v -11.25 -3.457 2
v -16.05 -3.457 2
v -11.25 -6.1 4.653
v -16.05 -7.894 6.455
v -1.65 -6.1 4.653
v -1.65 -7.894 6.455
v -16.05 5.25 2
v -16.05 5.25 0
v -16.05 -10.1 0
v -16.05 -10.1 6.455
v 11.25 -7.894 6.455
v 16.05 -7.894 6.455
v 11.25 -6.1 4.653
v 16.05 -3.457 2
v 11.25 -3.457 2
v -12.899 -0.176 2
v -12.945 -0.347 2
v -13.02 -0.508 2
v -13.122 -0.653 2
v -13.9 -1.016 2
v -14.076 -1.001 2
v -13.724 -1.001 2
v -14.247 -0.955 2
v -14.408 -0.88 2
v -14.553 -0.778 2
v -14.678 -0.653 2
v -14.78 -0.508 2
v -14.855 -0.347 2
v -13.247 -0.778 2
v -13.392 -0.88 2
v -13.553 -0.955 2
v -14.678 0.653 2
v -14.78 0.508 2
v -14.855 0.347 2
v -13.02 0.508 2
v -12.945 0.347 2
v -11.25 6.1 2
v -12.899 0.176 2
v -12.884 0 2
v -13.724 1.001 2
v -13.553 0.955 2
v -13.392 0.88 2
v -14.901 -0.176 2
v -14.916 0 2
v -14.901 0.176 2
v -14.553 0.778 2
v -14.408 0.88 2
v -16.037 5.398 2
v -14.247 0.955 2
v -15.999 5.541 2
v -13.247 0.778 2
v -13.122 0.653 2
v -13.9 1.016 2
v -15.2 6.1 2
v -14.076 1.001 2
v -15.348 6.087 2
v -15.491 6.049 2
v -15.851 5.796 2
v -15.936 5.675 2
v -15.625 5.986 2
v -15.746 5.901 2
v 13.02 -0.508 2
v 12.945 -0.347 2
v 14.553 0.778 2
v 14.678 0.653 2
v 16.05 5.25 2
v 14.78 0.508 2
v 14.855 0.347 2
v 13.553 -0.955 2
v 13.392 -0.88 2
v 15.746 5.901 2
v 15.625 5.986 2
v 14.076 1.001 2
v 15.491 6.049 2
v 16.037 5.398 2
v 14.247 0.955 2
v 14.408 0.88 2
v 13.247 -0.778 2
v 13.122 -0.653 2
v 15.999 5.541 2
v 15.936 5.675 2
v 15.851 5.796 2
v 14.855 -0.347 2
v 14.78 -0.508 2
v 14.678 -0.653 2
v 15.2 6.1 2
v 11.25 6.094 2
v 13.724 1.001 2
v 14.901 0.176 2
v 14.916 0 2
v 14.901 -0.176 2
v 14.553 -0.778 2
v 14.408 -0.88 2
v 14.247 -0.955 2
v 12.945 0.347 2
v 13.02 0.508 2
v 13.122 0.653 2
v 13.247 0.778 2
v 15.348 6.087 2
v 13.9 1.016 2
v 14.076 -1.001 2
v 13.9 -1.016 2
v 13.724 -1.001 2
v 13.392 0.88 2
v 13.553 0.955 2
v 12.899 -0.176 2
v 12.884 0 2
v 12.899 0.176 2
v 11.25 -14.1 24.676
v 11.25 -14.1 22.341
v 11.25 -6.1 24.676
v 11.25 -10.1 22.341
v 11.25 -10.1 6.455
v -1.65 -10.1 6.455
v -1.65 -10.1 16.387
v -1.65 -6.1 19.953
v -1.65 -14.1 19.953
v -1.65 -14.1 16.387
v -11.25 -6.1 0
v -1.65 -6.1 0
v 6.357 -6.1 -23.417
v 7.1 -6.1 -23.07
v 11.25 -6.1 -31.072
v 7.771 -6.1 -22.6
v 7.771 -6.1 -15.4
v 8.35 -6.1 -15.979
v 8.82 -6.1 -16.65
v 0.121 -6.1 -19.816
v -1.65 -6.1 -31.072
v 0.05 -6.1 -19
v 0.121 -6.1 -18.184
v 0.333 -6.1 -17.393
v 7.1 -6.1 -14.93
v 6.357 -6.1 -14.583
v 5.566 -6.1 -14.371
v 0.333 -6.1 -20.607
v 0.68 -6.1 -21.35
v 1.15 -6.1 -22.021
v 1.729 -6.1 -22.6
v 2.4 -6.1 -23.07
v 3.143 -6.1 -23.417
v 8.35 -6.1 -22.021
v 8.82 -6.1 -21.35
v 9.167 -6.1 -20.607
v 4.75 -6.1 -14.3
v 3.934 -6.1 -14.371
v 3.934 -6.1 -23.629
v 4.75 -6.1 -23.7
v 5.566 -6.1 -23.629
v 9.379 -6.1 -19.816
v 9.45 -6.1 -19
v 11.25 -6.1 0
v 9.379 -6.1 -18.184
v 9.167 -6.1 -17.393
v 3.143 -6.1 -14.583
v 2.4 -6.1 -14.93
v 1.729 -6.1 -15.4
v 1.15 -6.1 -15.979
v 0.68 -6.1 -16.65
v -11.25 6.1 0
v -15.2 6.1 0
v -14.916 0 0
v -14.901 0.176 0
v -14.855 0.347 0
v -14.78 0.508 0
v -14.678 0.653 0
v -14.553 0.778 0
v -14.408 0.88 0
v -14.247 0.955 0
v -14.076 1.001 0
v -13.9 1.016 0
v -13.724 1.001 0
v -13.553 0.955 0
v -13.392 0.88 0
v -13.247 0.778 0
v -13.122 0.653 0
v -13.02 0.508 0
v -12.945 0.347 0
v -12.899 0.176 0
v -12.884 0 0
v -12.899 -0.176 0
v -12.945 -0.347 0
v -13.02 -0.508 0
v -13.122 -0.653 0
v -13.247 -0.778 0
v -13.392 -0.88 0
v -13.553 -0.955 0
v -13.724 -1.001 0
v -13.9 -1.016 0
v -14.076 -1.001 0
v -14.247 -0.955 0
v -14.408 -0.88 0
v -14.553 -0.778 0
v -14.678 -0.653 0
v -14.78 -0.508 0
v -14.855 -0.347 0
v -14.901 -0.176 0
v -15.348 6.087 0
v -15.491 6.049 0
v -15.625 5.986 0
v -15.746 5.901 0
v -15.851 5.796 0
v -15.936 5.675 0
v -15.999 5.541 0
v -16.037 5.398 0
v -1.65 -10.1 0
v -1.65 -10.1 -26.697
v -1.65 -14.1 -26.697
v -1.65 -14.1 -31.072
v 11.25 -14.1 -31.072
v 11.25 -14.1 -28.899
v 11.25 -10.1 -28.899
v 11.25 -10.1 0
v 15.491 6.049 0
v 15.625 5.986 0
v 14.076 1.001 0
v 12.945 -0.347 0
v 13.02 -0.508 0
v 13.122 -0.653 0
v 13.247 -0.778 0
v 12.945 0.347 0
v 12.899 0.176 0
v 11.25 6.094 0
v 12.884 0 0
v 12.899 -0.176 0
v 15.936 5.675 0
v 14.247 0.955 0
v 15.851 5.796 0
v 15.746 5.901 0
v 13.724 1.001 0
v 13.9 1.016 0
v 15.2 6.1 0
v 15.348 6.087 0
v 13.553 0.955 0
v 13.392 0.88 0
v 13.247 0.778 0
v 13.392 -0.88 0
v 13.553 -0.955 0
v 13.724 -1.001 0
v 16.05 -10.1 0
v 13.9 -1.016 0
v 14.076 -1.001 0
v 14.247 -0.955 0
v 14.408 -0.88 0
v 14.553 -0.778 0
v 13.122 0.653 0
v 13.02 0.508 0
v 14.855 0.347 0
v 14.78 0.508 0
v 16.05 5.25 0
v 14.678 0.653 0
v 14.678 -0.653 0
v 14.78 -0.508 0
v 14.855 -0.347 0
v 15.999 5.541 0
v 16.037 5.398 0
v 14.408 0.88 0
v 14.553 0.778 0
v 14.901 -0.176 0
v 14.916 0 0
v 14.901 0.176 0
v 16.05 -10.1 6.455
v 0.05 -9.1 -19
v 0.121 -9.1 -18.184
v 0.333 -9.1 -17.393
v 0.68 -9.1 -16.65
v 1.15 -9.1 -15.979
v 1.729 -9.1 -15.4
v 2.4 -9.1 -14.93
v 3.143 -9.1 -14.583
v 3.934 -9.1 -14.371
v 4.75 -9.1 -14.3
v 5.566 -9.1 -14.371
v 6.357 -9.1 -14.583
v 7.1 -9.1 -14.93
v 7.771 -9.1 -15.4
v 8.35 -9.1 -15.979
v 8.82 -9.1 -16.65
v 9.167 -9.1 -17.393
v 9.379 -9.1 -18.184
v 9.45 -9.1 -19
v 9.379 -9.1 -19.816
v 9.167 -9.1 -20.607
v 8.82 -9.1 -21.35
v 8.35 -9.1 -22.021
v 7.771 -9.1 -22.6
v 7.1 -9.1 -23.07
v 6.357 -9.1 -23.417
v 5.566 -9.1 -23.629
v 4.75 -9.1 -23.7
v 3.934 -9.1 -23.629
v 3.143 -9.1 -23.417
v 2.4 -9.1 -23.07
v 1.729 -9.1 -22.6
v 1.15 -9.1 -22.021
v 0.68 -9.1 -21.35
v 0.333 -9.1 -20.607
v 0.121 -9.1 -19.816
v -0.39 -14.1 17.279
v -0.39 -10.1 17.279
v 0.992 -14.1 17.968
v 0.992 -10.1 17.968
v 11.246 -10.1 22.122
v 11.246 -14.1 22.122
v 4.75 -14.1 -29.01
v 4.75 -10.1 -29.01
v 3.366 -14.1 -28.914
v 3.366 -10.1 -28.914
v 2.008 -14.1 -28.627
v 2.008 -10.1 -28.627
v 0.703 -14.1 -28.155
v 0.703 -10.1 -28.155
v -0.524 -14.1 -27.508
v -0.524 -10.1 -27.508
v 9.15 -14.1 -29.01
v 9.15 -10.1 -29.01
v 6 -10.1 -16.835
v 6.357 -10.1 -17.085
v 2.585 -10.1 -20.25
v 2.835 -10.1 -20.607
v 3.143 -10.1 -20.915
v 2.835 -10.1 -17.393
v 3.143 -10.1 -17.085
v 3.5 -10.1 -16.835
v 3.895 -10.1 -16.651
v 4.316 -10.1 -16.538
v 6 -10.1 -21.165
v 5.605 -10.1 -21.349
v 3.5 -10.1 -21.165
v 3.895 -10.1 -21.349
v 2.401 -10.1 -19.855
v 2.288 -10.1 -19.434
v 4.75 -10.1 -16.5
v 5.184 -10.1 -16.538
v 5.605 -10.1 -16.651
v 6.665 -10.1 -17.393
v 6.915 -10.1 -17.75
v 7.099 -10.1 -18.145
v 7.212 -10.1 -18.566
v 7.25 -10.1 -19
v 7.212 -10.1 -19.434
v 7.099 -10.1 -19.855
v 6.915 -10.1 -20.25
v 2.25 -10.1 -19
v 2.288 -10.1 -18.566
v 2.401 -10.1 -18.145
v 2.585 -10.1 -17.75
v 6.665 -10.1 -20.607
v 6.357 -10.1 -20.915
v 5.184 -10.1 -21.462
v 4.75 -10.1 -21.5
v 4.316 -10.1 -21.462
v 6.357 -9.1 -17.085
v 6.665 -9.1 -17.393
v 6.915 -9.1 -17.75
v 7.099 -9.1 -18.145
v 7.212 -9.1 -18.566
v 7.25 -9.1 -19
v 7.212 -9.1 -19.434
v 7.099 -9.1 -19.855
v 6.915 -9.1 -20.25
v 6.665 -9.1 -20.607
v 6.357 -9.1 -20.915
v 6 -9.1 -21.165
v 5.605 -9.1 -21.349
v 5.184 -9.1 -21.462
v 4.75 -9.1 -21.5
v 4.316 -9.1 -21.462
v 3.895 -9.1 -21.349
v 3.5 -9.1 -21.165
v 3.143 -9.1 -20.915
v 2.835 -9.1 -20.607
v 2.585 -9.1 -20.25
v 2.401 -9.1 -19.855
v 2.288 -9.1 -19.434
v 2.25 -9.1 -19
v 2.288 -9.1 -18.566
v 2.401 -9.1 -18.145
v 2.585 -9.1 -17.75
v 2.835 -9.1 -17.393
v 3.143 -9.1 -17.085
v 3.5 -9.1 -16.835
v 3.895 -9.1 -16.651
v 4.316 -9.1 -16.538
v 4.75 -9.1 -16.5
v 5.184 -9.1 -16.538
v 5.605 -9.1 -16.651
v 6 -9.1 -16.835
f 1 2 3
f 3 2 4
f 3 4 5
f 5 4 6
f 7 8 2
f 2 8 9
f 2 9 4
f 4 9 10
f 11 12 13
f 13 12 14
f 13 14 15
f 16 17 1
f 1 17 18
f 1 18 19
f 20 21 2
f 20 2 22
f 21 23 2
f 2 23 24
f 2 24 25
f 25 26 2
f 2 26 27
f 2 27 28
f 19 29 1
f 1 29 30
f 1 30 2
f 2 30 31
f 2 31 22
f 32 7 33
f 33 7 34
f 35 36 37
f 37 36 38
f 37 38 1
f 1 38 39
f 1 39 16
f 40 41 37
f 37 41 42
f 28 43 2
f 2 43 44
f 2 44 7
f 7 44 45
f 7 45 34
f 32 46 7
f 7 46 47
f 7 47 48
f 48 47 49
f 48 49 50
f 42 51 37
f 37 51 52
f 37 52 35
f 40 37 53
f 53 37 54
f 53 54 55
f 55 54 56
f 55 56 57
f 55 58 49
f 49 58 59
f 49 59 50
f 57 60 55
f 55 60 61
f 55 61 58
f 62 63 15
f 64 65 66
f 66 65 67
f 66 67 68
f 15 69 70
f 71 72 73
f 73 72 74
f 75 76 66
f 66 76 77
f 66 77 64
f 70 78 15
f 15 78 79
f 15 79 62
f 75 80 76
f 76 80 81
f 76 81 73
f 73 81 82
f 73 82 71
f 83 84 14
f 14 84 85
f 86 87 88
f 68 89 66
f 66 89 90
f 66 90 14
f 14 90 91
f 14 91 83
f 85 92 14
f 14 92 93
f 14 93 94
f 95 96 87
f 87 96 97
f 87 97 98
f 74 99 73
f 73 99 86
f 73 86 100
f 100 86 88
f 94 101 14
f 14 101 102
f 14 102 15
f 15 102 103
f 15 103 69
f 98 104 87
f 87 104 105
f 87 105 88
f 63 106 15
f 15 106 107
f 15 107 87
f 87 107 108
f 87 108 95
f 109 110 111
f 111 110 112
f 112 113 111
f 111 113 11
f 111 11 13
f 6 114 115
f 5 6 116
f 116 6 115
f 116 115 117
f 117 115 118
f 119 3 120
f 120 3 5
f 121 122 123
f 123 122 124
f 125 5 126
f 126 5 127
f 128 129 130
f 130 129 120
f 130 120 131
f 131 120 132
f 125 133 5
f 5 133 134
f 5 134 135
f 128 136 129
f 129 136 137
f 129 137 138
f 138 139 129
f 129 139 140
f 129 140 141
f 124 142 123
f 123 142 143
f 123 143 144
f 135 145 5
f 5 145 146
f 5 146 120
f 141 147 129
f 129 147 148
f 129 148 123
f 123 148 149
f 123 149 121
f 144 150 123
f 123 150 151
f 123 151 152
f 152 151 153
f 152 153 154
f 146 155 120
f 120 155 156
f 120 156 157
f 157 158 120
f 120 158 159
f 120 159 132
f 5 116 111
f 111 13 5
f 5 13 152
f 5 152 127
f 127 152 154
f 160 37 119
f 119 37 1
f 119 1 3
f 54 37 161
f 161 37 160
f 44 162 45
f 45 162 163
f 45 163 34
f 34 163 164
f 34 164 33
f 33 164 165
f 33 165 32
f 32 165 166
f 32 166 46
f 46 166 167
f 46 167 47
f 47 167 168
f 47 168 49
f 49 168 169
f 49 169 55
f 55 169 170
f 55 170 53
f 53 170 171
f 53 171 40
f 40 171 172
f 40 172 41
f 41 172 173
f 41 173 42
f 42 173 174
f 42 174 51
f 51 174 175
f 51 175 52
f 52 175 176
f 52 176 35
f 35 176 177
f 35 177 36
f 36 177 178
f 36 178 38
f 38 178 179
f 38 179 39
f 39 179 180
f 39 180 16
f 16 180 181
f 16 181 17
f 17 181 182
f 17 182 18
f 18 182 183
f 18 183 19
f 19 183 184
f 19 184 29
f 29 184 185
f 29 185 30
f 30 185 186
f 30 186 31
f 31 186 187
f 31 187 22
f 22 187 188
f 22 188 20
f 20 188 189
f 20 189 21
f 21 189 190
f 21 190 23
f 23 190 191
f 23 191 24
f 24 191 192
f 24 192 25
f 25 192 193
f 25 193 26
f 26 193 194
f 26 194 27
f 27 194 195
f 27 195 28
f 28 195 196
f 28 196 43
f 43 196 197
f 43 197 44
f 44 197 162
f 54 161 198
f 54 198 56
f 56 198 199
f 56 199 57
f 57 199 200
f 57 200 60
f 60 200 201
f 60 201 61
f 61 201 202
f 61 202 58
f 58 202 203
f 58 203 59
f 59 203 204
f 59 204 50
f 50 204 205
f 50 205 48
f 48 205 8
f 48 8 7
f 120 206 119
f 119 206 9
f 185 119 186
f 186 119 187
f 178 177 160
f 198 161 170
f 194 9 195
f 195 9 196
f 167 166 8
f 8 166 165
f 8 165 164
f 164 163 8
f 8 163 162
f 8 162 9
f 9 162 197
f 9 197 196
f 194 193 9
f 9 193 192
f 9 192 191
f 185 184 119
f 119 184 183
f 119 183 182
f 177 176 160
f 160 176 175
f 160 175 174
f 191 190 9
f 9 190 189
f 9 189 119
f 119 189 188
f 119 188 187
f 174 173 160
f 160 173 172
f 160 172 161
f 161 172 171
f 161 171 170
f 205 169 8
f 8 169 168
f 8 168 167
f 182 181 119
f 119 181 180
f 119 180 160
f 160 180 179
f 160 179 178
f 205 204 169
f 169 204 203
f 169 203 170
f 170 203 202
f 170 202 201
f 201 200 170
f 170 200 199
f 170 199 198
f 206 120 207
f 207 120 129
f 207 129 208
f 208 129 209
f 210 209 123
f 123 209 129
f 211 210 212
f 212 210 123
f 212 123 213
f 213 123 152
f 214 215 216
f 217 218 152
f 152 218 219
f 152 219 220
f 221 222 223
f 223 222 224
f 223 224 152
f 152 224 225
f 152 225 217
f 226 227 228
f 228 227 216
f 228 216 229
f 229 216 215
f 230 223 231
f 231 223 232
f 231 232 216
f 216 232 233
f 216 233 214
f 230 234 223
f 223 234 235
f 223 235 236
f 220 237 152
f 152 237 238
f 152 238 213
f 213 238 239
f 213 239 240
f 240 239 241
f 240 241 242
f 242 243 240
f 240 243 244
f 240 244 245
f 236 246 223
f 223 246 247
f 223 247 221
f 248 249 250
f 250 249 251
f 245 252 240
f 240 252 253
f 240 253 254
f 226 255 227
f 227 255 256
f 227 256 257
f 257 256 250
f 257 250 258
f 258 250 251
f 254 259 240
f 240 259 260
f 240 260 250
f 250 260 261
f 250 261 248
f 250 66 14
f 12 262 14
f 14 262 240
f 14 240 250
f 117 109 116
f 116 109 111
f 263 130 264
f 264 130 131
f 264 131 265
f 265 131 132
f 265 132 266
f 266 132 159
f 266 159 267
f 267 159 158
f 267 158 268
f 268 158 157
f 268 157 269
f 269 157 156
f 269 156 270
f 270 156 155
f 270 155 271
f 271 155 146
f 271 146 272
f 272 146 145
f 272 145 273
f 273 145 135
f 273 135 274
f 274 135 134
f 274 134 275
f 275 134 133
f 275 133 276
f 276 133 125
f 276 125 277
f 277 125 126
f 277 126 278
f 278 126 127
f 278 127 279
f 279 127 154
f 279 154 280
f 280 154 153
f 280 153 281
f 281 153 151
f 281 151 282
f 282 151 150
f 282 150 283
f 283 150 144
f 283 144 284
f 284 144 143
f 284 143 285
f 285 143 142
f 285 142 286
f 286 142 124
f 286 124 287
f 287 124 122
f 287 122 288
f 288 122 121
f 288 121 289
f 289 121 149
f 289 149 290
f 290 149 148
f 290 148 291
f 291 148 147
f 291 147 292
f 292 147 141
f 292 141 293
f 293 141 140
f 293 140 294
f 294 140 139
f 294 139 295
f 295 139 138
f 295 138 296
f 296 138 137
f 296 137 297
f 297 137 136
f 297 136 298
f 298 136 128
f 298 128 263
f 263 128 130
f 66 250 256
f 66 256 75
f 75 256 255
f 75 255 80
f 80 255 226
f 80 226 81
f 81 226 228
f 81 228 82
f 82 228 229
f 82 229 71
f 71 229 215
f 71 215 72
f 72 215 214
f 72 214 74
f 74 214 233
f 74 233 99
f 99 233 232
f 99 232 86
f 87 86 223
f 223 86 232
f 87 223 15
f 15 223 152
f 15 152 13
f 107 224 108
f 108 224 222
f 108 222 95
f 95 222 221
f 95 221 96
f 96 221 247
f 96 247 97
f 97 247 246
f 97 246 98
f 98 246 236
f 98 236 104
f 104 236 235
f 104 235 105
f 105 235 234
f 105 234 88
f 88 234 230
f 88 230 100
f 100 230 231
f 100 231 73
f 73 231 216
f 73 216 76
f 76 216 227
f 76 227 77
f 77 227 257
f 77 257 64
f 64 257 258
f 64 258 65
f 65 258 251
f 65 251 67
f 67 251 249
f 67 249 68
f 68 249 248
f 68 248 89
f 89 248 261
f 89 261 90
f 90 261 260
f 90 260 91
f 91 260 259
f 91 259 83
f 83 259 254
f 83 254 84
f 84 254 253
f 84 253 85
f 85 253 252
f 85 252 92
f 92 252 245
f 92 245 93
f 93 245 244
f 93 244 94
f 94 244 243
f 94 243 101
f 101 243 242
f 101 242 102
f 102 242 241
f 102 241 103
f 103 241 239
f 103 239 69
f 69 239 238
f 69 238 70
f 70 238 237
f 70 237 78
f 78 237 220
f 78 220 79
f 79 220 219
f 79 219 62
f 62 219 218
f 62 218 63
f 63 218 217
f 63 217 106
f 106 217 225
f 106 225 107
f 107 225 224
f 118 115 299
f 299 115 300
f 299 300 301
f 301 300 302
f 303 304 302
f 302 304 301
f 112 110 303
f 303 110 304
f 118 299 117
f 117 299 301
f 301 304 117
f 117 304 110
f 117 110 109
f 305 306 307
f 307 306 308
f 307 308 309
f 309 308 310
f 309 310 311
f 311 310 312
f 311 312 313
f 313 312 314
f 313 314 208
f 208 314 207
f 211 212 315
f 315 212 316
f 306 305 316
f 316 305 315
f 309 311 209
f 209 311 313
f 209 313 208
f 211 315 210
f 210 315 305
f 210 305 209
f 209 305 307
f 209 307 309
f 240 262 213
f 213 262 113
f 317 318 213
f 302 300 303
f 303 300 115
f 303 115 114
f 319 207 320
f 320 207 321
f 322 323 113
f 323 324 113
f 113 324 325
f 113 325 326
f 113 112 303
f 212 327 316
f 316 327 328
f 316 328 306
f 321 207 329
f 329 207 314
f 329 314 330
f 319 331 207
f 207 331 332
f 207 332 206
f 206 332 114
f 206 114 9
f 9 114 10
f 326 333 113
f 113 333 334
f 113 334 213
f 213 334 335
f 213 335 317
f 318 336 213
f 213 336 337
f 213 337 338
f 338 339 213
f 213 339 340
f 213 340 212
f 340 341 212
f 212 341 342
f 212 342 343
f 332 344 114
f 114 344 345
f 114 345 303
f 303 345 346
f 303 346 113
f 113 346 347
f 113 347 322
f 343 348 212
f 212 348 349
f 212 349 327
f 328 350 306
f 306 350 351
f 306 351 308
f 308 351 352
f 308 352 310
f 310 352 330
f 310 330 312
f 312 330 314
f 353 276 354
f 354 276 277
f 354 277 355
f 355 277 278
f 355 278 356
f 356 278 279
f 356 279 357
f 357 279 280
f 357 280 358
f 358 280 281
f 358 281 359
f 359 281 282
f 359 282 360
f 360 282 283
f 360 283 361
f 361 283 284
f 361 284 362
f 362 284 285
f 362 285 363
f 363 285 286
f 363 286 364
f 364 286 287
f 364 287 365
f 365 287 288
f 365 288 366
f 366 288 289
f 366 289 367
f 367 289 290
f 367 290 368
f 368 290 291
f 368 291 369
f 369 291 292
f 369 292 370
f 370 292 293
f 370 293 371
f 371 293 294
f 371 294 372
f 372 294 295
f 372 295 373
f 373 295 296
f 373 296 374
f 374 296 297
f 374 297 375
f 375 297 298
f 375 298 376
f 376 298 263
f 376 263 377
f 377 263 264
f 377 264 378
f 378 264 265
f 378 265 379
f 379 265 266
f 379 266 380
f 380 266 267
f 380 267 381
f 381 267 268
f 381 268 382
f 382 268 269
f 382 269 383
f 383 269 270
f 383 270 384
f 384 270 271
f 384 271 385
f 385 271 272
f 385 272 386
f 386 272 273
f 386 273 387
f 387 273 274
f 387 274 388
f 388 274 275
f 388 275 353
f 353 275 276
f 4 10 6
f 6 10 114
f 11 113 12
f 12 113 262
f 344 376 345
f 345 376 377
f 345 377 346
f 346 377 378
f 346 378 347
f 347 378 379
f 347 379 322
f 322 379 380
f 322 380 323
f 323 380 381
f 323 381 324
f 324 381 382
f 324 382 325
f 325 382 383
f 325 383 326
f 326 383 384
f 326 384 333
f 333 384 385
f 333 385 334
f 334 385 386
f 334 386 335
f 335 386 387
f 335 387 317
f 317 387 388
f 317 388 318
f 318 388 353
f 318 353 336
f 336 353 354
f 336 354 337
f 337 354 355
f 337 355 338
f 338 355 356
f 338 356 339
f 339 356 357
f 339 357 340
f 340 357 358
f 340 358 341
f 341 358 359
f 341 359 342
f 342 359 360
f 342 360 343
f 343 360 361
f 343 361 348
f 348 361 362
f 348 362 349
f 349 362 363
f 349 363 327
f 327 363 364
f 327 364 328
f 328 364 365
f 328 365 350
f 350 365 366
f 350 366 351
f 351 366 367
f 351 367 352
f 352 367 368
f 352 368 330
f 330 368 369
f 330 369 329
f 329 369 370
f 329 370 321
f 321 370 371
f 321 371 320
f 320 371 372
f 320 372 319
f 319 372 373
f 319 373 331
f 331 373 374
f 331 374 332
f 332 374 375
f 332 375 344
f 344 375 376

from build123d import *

# Parameters (mm, degrees)
SKETCH1_R                       = 1.016
BOSS_EXTRUDE1_DEPTH             = 2
BOSS_EXTRUDE2_OUTLINE_R         = 4.7
BOSS_EXTRUDE2_DEPTH             = 3
BOSS_EXTRUDE5_DEPTH             = 8
BOSS_EXTRUDE6_REACH             = 45.699
BOSS_EXTRUDE6_DIRECTION_2_REACH = 45.699
SKETCH4_W                       = 22.5
SKETCH4_H                       = 14.127681706
CUT_EXTRUDE1_DEPTH              = 7
FILLET1_R                       = 0.5
SKETCH5_R                       = 2.5
BOSS_EXTRUDE7_DEPTH             = 1
SKETCH6_W                       = 5.313656685
SKETCH6_H                       = 4.599259183
SKETCH6_W_2                     = 16.163165117
SKETCH6_H_2                     = 5.344557169
CUT_EXTRUDE2_DEPTH              = 5


# Read off the part's stored shape, not the designer's step: Boss-Extrude2
with BuildPart() as part:
    # Sketch1 → Boss-Extrude1 (new body)
    # profile 1 of 4: a face of its own
    with BuildSketch(Plane.XY):
        with BuildLine():
            Line((-16.05, 5.25), (-16.05, -5.25))
            ThreePointArc((-16.05, -5.25), (-15.801040764, -5.851040764), (-15.2, -6.1))
            Line((-15.2, -6.1), (-11.25, -6.1))
            Line((-11.25, -6.1), (-11.25, 6.1))
            Line((-11.25, 6.1), (-15.2, 6.1))
            ThreePointArc((-15.2, 6.1), (-15.801040764, 5.851040764), (-16.05, 5.25))
        make_face()
        with Locations((-13.9, 0)):
            Circle(SKETCH1_R, mode=Mode.SUBTRACT)
    # profile 2 of 4: a face of its own
    with BuildSketch(Plane.XY):
        with BuildLine():
            Line((16.05, 5.25), (16.05, -5.25))
            ThreePointArc((16.05, -5.25), (15.801040764, -5.851040764), (15.2, -6.1))
            Line((15.2, -6.1), (11.25, -6.1))
            Line((11.25, -6.1), (11.25, 6.094097151))
            Line((11.25, 6.094097151), (15.2, 6.1))
            ThreePointArc((15.2, 6.1), (15.801040764, 5.851040764), (16.05, 5.25))
        make_face()
        with Locations((13.9, 0)):
            Circle(SKETCH1_R, mode=Mode.SUBTRACT)
    # profile 3 of 4: a face of its own
    with BuildSketch(Plane.XY):
        with BuildLine():
            ThreePointArc((15.2, -6.1), (15.801040764, -5.851040764), (16.05, -5.25))
            Line((16.05, -5.25), (16.05, -6.1))
            Line((16.05, -6.1), (15.2, -6.1))
        make_face()
    # profile 4 of 4: a face of its own
    with BuildSketch(Plane.XY):
        with BuildLine():
            ThreePointArc((-16.05, -5.25), (-15.801040764, -5.851040764), (-15.2, -6.1))
            Line((-15.2, -6.1), (-16.05, -6.1))
            Line((-16.05, -6.1), (-16.05, -5.25))
        make_face()
    extrude(amount=BOSS_EXTRUDE1_DEPTH)

    # Boss-Extrude2 outline → Boss-Extrude2 (add)
    with BuildSketch(Plane.XZ.offset(6.1)):
        Polygon((-16.05, 2), (-16.05, 0), (-1.65, 0), (-1.65, -31.072136217), (11.25, -31.072136217), (11.25, 0), (16.05, 0), (16.05, 2), (11.25, 2), (11.25, 24.675592953), (-1.65, 19.952742461), (-1.65, 2), align=None)
        with Locations((4.75, -19)):
            Circle(BOSS_EXTRUDE2_OUTLINE_R, mode=Mode.SUBTRACT)
    extrude(amount=BOSS_EXTRUDE2_DEPTH)

    # Sketch2<3> → Boss-Extrude5 (add)
    with BuildSketch(Plane.XZ.offset(6.1)):
        with BuildLine():
            Line((-1.65, 19.952742461), (-1.65, 16.386819499))
            ThreePointArc((-1.65, 16.386819499), (-0.390222028, 17.279485189), (0.991848608, 17.967797132))
            Line((0.991848608, 17.967797132), (11.246245603, 22.12156627))
            Line((11.246245603, 22.12156627), (11.25, 22.341096015))
            Line((11.25, 22.341096015), (11.25, 24.675592953))
            Line((11.25, 24.675592953), (-1.65, 19.952742461))
        make_face()
        with BuildLine():
            ThreePointArc((4.75, -29.01), (1.347387634, -28.413943333), (-1.65, -26.696759058))
            Line((-1.65, -26.696759058), (-1.65, -31.072136217))
            Line((-1.65, -31.072136217), (11.25, -31.072136217))
            Line((11.25, -31.072136217), (11.25, -28.899497484))
            ThreePointArc((11.25, -28.899497484), (10.201440757, -28.982355275), (9.149976222, -29.01))
            Line((9.149976222, -29.01), (4.75, -29.01))
        make_face()
    extrude(amount=BOSS_EXTRUDE5_DEPTH)

    # Boss-Extrude6: up to this face of the body (flat: up to its plane)
    boss_extrude6_end = Plane(part.part.faces().sort_by_distance((16.05, -1.925, 1))[0])
    # Sketch3 → Boss-Extrude6 (add, up to the picked face)
    with BuildSketch(Plane(origin=(11.25, 0, 0), x_dir=(0, 0, -1), z_dir=(1, 0, 0)), mode=Mode.PRIVATE) as boss_extrude6_sk1:
        Polygon((-7.665828596, -9.1), (-2, -3.457464127), (-2, -9.1), align=None)
    boss_extrude6_tool1 = split(extrude(boss_extrude6_sk1.sketch, amount=BOSS_EXTRUDE6_REACH, mode=Mode.PRIVATE), bisect_by=boss_extrude6_end, keep=Keep.BOTH, mode=Mode.PRIVATE)
    add(boss_extrude6_tool1.solids().sort_by(Axis((11.25, -7.219155, 3.88861), (1, 0, 0)))[0])

    # Boss-Extrude6 direction 2: up to this face of the body (flat: up to its plane)
    boss_extrude6_direction_2_end = Plane(part.part.faces().sort_by_distance((-16.05, -1.925, 1))[0])
    # Sketch3 → Boss-Extrude6 direction 2 (add, up to the picked face)
    with BuildSketch(Plane(origin=(11.25, 0, 0), x_dir=(0, 0, -1), z_dir=(1, 0, 0)), mode=Mode.PRIVATE) as boss_extrude6_direction_2_sk1:
        Polygon((-7.665828596, -9.1), (-2, -3.457464127), (-2, -9.1), align=None)
    boss_extrude6_direction_2_tool1 = split(extrude(boss_extrude6_direction_2_sk1.sketch, amount=-BOSS_EXTRUDE6_DIRECTION_2_REACH, mode=Mode.PRIVATE), bisect_by=boss_extrude6_direction_2_end, keep=Keep.BOTH, mode=Mode.PRIVATE)
    add(boss_extrude6_direction_2_tool1.solids().sort_by(Axis((11.25, -7.219155, 3.88861), (-1, 0, 0)))[0])

    # Sketch4 → Cut-Extrude1 (cut)
    with BuildSketch(Plane(origin=(0, -6.1, 0), x_dir=(1, 0, 0), z_dir=(0, 1, 0))):
        with Locations((0, -7.063840853)):
            Rectangle(SKETCH4_W, SKETCH4_H)
    extrude(amount=CUT_EXTRUDE1_DEPTH, mode=Mode.SUBTRACT)

    # Fillet1
    fillet1_edges = [part.edges().sort_by_distance(p)[0] for p in [
        (13.65, -9.1, 7.665828596),
        (-8.85, -9.1, 7.665828596),
    ]]
    fillet(fillet1_edges, radius=FILLET1_R)

    # Sketch5 → Boss-Extrude7 (add)
    with BuildSketch(Plane.XZ.offset(9.1)):
        with BuildLine():
            Line((-1.65, 16.386819499), (-1.65, 6.455196792))
            Line((-1.65, 6.455196792), (-16.05, 6.455196792))
            Line((-16.05, 6.455196792), (-16.05, 0))
            Line((-16.05, 0), (-1.65, 0))
            Line((-1.65, 0), (-1.65, -26.696759058))
            ThreePointArc((-1.65, -26.696759058), (1.347387634, -28.413943333), (4.75, -29.01))
            Line((4.75, -29.01), (9.149976222, -29.01))
            ThreePointArc((9.149976222, -29.01), (10.201440757, -28.982355275), (11.25, -28.899497484))
            Line((11.25, -28.899497484), (11.25, 0))
            Line((11.25, 0), (16.05, 0))
            Line((16.05, 0), (16.05, 6.455196792))
            Line((16.05, 6.455196792), (11.25, 6.455196792))
            Line((11.25, 6.455196792), (11.25, 22.341096015))
            Line((11.25, 22.341096015), (11.246245603, 22.12156627))
            Line((11.246245603, 22.12156627), (0.991848608, 17.967797132))
            ThreePointArc((0.991848608, 17.967797132), (-0.390222028, 17.279485189), (-1.65, 16.386819499))
        make_face()
        with Locations((4.75, -19)):
            Circle(SKETCH5_R, mode=Mode.SUBTRACT)
    extrude(amount=BOSS_EXTRUDE7_DEPTH)

    # Sketch6 → Cut-Extrude2 (cut)
    with BuildSketch(Plane.XY.offset(6.455196792)):
        with Locations((13.906828343, -7.800370409)):
            Rectangle(SKETCH6_W, SKETCH6_H)
        with Locations((-9.731582558, -7.427721416)):
            Rectangle(SKETCH6_W_2, SKETCH6_H_2)
    extrude(amount=CUT_EXTRUDE2_DEPTH, mode=Mode.SUBTRACT)


solid = part.part
